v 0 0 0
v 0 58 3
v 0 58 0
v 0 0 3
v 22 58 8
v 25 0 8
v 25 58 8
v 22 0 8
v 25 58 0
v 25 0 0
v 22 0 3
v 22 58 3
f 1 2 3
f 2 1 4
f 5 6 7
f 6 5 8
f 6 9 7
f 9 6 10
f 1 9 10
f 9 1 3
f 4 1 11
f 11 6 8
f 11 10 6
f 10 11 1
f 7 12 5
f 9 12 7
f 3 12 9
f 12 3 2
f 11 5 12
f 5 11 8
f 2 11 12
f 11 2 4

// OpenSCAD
difference()    {
 cube([25,58,8]);
 translate([0,0,3]) {
  cube([22,58,5]);
 }
}
